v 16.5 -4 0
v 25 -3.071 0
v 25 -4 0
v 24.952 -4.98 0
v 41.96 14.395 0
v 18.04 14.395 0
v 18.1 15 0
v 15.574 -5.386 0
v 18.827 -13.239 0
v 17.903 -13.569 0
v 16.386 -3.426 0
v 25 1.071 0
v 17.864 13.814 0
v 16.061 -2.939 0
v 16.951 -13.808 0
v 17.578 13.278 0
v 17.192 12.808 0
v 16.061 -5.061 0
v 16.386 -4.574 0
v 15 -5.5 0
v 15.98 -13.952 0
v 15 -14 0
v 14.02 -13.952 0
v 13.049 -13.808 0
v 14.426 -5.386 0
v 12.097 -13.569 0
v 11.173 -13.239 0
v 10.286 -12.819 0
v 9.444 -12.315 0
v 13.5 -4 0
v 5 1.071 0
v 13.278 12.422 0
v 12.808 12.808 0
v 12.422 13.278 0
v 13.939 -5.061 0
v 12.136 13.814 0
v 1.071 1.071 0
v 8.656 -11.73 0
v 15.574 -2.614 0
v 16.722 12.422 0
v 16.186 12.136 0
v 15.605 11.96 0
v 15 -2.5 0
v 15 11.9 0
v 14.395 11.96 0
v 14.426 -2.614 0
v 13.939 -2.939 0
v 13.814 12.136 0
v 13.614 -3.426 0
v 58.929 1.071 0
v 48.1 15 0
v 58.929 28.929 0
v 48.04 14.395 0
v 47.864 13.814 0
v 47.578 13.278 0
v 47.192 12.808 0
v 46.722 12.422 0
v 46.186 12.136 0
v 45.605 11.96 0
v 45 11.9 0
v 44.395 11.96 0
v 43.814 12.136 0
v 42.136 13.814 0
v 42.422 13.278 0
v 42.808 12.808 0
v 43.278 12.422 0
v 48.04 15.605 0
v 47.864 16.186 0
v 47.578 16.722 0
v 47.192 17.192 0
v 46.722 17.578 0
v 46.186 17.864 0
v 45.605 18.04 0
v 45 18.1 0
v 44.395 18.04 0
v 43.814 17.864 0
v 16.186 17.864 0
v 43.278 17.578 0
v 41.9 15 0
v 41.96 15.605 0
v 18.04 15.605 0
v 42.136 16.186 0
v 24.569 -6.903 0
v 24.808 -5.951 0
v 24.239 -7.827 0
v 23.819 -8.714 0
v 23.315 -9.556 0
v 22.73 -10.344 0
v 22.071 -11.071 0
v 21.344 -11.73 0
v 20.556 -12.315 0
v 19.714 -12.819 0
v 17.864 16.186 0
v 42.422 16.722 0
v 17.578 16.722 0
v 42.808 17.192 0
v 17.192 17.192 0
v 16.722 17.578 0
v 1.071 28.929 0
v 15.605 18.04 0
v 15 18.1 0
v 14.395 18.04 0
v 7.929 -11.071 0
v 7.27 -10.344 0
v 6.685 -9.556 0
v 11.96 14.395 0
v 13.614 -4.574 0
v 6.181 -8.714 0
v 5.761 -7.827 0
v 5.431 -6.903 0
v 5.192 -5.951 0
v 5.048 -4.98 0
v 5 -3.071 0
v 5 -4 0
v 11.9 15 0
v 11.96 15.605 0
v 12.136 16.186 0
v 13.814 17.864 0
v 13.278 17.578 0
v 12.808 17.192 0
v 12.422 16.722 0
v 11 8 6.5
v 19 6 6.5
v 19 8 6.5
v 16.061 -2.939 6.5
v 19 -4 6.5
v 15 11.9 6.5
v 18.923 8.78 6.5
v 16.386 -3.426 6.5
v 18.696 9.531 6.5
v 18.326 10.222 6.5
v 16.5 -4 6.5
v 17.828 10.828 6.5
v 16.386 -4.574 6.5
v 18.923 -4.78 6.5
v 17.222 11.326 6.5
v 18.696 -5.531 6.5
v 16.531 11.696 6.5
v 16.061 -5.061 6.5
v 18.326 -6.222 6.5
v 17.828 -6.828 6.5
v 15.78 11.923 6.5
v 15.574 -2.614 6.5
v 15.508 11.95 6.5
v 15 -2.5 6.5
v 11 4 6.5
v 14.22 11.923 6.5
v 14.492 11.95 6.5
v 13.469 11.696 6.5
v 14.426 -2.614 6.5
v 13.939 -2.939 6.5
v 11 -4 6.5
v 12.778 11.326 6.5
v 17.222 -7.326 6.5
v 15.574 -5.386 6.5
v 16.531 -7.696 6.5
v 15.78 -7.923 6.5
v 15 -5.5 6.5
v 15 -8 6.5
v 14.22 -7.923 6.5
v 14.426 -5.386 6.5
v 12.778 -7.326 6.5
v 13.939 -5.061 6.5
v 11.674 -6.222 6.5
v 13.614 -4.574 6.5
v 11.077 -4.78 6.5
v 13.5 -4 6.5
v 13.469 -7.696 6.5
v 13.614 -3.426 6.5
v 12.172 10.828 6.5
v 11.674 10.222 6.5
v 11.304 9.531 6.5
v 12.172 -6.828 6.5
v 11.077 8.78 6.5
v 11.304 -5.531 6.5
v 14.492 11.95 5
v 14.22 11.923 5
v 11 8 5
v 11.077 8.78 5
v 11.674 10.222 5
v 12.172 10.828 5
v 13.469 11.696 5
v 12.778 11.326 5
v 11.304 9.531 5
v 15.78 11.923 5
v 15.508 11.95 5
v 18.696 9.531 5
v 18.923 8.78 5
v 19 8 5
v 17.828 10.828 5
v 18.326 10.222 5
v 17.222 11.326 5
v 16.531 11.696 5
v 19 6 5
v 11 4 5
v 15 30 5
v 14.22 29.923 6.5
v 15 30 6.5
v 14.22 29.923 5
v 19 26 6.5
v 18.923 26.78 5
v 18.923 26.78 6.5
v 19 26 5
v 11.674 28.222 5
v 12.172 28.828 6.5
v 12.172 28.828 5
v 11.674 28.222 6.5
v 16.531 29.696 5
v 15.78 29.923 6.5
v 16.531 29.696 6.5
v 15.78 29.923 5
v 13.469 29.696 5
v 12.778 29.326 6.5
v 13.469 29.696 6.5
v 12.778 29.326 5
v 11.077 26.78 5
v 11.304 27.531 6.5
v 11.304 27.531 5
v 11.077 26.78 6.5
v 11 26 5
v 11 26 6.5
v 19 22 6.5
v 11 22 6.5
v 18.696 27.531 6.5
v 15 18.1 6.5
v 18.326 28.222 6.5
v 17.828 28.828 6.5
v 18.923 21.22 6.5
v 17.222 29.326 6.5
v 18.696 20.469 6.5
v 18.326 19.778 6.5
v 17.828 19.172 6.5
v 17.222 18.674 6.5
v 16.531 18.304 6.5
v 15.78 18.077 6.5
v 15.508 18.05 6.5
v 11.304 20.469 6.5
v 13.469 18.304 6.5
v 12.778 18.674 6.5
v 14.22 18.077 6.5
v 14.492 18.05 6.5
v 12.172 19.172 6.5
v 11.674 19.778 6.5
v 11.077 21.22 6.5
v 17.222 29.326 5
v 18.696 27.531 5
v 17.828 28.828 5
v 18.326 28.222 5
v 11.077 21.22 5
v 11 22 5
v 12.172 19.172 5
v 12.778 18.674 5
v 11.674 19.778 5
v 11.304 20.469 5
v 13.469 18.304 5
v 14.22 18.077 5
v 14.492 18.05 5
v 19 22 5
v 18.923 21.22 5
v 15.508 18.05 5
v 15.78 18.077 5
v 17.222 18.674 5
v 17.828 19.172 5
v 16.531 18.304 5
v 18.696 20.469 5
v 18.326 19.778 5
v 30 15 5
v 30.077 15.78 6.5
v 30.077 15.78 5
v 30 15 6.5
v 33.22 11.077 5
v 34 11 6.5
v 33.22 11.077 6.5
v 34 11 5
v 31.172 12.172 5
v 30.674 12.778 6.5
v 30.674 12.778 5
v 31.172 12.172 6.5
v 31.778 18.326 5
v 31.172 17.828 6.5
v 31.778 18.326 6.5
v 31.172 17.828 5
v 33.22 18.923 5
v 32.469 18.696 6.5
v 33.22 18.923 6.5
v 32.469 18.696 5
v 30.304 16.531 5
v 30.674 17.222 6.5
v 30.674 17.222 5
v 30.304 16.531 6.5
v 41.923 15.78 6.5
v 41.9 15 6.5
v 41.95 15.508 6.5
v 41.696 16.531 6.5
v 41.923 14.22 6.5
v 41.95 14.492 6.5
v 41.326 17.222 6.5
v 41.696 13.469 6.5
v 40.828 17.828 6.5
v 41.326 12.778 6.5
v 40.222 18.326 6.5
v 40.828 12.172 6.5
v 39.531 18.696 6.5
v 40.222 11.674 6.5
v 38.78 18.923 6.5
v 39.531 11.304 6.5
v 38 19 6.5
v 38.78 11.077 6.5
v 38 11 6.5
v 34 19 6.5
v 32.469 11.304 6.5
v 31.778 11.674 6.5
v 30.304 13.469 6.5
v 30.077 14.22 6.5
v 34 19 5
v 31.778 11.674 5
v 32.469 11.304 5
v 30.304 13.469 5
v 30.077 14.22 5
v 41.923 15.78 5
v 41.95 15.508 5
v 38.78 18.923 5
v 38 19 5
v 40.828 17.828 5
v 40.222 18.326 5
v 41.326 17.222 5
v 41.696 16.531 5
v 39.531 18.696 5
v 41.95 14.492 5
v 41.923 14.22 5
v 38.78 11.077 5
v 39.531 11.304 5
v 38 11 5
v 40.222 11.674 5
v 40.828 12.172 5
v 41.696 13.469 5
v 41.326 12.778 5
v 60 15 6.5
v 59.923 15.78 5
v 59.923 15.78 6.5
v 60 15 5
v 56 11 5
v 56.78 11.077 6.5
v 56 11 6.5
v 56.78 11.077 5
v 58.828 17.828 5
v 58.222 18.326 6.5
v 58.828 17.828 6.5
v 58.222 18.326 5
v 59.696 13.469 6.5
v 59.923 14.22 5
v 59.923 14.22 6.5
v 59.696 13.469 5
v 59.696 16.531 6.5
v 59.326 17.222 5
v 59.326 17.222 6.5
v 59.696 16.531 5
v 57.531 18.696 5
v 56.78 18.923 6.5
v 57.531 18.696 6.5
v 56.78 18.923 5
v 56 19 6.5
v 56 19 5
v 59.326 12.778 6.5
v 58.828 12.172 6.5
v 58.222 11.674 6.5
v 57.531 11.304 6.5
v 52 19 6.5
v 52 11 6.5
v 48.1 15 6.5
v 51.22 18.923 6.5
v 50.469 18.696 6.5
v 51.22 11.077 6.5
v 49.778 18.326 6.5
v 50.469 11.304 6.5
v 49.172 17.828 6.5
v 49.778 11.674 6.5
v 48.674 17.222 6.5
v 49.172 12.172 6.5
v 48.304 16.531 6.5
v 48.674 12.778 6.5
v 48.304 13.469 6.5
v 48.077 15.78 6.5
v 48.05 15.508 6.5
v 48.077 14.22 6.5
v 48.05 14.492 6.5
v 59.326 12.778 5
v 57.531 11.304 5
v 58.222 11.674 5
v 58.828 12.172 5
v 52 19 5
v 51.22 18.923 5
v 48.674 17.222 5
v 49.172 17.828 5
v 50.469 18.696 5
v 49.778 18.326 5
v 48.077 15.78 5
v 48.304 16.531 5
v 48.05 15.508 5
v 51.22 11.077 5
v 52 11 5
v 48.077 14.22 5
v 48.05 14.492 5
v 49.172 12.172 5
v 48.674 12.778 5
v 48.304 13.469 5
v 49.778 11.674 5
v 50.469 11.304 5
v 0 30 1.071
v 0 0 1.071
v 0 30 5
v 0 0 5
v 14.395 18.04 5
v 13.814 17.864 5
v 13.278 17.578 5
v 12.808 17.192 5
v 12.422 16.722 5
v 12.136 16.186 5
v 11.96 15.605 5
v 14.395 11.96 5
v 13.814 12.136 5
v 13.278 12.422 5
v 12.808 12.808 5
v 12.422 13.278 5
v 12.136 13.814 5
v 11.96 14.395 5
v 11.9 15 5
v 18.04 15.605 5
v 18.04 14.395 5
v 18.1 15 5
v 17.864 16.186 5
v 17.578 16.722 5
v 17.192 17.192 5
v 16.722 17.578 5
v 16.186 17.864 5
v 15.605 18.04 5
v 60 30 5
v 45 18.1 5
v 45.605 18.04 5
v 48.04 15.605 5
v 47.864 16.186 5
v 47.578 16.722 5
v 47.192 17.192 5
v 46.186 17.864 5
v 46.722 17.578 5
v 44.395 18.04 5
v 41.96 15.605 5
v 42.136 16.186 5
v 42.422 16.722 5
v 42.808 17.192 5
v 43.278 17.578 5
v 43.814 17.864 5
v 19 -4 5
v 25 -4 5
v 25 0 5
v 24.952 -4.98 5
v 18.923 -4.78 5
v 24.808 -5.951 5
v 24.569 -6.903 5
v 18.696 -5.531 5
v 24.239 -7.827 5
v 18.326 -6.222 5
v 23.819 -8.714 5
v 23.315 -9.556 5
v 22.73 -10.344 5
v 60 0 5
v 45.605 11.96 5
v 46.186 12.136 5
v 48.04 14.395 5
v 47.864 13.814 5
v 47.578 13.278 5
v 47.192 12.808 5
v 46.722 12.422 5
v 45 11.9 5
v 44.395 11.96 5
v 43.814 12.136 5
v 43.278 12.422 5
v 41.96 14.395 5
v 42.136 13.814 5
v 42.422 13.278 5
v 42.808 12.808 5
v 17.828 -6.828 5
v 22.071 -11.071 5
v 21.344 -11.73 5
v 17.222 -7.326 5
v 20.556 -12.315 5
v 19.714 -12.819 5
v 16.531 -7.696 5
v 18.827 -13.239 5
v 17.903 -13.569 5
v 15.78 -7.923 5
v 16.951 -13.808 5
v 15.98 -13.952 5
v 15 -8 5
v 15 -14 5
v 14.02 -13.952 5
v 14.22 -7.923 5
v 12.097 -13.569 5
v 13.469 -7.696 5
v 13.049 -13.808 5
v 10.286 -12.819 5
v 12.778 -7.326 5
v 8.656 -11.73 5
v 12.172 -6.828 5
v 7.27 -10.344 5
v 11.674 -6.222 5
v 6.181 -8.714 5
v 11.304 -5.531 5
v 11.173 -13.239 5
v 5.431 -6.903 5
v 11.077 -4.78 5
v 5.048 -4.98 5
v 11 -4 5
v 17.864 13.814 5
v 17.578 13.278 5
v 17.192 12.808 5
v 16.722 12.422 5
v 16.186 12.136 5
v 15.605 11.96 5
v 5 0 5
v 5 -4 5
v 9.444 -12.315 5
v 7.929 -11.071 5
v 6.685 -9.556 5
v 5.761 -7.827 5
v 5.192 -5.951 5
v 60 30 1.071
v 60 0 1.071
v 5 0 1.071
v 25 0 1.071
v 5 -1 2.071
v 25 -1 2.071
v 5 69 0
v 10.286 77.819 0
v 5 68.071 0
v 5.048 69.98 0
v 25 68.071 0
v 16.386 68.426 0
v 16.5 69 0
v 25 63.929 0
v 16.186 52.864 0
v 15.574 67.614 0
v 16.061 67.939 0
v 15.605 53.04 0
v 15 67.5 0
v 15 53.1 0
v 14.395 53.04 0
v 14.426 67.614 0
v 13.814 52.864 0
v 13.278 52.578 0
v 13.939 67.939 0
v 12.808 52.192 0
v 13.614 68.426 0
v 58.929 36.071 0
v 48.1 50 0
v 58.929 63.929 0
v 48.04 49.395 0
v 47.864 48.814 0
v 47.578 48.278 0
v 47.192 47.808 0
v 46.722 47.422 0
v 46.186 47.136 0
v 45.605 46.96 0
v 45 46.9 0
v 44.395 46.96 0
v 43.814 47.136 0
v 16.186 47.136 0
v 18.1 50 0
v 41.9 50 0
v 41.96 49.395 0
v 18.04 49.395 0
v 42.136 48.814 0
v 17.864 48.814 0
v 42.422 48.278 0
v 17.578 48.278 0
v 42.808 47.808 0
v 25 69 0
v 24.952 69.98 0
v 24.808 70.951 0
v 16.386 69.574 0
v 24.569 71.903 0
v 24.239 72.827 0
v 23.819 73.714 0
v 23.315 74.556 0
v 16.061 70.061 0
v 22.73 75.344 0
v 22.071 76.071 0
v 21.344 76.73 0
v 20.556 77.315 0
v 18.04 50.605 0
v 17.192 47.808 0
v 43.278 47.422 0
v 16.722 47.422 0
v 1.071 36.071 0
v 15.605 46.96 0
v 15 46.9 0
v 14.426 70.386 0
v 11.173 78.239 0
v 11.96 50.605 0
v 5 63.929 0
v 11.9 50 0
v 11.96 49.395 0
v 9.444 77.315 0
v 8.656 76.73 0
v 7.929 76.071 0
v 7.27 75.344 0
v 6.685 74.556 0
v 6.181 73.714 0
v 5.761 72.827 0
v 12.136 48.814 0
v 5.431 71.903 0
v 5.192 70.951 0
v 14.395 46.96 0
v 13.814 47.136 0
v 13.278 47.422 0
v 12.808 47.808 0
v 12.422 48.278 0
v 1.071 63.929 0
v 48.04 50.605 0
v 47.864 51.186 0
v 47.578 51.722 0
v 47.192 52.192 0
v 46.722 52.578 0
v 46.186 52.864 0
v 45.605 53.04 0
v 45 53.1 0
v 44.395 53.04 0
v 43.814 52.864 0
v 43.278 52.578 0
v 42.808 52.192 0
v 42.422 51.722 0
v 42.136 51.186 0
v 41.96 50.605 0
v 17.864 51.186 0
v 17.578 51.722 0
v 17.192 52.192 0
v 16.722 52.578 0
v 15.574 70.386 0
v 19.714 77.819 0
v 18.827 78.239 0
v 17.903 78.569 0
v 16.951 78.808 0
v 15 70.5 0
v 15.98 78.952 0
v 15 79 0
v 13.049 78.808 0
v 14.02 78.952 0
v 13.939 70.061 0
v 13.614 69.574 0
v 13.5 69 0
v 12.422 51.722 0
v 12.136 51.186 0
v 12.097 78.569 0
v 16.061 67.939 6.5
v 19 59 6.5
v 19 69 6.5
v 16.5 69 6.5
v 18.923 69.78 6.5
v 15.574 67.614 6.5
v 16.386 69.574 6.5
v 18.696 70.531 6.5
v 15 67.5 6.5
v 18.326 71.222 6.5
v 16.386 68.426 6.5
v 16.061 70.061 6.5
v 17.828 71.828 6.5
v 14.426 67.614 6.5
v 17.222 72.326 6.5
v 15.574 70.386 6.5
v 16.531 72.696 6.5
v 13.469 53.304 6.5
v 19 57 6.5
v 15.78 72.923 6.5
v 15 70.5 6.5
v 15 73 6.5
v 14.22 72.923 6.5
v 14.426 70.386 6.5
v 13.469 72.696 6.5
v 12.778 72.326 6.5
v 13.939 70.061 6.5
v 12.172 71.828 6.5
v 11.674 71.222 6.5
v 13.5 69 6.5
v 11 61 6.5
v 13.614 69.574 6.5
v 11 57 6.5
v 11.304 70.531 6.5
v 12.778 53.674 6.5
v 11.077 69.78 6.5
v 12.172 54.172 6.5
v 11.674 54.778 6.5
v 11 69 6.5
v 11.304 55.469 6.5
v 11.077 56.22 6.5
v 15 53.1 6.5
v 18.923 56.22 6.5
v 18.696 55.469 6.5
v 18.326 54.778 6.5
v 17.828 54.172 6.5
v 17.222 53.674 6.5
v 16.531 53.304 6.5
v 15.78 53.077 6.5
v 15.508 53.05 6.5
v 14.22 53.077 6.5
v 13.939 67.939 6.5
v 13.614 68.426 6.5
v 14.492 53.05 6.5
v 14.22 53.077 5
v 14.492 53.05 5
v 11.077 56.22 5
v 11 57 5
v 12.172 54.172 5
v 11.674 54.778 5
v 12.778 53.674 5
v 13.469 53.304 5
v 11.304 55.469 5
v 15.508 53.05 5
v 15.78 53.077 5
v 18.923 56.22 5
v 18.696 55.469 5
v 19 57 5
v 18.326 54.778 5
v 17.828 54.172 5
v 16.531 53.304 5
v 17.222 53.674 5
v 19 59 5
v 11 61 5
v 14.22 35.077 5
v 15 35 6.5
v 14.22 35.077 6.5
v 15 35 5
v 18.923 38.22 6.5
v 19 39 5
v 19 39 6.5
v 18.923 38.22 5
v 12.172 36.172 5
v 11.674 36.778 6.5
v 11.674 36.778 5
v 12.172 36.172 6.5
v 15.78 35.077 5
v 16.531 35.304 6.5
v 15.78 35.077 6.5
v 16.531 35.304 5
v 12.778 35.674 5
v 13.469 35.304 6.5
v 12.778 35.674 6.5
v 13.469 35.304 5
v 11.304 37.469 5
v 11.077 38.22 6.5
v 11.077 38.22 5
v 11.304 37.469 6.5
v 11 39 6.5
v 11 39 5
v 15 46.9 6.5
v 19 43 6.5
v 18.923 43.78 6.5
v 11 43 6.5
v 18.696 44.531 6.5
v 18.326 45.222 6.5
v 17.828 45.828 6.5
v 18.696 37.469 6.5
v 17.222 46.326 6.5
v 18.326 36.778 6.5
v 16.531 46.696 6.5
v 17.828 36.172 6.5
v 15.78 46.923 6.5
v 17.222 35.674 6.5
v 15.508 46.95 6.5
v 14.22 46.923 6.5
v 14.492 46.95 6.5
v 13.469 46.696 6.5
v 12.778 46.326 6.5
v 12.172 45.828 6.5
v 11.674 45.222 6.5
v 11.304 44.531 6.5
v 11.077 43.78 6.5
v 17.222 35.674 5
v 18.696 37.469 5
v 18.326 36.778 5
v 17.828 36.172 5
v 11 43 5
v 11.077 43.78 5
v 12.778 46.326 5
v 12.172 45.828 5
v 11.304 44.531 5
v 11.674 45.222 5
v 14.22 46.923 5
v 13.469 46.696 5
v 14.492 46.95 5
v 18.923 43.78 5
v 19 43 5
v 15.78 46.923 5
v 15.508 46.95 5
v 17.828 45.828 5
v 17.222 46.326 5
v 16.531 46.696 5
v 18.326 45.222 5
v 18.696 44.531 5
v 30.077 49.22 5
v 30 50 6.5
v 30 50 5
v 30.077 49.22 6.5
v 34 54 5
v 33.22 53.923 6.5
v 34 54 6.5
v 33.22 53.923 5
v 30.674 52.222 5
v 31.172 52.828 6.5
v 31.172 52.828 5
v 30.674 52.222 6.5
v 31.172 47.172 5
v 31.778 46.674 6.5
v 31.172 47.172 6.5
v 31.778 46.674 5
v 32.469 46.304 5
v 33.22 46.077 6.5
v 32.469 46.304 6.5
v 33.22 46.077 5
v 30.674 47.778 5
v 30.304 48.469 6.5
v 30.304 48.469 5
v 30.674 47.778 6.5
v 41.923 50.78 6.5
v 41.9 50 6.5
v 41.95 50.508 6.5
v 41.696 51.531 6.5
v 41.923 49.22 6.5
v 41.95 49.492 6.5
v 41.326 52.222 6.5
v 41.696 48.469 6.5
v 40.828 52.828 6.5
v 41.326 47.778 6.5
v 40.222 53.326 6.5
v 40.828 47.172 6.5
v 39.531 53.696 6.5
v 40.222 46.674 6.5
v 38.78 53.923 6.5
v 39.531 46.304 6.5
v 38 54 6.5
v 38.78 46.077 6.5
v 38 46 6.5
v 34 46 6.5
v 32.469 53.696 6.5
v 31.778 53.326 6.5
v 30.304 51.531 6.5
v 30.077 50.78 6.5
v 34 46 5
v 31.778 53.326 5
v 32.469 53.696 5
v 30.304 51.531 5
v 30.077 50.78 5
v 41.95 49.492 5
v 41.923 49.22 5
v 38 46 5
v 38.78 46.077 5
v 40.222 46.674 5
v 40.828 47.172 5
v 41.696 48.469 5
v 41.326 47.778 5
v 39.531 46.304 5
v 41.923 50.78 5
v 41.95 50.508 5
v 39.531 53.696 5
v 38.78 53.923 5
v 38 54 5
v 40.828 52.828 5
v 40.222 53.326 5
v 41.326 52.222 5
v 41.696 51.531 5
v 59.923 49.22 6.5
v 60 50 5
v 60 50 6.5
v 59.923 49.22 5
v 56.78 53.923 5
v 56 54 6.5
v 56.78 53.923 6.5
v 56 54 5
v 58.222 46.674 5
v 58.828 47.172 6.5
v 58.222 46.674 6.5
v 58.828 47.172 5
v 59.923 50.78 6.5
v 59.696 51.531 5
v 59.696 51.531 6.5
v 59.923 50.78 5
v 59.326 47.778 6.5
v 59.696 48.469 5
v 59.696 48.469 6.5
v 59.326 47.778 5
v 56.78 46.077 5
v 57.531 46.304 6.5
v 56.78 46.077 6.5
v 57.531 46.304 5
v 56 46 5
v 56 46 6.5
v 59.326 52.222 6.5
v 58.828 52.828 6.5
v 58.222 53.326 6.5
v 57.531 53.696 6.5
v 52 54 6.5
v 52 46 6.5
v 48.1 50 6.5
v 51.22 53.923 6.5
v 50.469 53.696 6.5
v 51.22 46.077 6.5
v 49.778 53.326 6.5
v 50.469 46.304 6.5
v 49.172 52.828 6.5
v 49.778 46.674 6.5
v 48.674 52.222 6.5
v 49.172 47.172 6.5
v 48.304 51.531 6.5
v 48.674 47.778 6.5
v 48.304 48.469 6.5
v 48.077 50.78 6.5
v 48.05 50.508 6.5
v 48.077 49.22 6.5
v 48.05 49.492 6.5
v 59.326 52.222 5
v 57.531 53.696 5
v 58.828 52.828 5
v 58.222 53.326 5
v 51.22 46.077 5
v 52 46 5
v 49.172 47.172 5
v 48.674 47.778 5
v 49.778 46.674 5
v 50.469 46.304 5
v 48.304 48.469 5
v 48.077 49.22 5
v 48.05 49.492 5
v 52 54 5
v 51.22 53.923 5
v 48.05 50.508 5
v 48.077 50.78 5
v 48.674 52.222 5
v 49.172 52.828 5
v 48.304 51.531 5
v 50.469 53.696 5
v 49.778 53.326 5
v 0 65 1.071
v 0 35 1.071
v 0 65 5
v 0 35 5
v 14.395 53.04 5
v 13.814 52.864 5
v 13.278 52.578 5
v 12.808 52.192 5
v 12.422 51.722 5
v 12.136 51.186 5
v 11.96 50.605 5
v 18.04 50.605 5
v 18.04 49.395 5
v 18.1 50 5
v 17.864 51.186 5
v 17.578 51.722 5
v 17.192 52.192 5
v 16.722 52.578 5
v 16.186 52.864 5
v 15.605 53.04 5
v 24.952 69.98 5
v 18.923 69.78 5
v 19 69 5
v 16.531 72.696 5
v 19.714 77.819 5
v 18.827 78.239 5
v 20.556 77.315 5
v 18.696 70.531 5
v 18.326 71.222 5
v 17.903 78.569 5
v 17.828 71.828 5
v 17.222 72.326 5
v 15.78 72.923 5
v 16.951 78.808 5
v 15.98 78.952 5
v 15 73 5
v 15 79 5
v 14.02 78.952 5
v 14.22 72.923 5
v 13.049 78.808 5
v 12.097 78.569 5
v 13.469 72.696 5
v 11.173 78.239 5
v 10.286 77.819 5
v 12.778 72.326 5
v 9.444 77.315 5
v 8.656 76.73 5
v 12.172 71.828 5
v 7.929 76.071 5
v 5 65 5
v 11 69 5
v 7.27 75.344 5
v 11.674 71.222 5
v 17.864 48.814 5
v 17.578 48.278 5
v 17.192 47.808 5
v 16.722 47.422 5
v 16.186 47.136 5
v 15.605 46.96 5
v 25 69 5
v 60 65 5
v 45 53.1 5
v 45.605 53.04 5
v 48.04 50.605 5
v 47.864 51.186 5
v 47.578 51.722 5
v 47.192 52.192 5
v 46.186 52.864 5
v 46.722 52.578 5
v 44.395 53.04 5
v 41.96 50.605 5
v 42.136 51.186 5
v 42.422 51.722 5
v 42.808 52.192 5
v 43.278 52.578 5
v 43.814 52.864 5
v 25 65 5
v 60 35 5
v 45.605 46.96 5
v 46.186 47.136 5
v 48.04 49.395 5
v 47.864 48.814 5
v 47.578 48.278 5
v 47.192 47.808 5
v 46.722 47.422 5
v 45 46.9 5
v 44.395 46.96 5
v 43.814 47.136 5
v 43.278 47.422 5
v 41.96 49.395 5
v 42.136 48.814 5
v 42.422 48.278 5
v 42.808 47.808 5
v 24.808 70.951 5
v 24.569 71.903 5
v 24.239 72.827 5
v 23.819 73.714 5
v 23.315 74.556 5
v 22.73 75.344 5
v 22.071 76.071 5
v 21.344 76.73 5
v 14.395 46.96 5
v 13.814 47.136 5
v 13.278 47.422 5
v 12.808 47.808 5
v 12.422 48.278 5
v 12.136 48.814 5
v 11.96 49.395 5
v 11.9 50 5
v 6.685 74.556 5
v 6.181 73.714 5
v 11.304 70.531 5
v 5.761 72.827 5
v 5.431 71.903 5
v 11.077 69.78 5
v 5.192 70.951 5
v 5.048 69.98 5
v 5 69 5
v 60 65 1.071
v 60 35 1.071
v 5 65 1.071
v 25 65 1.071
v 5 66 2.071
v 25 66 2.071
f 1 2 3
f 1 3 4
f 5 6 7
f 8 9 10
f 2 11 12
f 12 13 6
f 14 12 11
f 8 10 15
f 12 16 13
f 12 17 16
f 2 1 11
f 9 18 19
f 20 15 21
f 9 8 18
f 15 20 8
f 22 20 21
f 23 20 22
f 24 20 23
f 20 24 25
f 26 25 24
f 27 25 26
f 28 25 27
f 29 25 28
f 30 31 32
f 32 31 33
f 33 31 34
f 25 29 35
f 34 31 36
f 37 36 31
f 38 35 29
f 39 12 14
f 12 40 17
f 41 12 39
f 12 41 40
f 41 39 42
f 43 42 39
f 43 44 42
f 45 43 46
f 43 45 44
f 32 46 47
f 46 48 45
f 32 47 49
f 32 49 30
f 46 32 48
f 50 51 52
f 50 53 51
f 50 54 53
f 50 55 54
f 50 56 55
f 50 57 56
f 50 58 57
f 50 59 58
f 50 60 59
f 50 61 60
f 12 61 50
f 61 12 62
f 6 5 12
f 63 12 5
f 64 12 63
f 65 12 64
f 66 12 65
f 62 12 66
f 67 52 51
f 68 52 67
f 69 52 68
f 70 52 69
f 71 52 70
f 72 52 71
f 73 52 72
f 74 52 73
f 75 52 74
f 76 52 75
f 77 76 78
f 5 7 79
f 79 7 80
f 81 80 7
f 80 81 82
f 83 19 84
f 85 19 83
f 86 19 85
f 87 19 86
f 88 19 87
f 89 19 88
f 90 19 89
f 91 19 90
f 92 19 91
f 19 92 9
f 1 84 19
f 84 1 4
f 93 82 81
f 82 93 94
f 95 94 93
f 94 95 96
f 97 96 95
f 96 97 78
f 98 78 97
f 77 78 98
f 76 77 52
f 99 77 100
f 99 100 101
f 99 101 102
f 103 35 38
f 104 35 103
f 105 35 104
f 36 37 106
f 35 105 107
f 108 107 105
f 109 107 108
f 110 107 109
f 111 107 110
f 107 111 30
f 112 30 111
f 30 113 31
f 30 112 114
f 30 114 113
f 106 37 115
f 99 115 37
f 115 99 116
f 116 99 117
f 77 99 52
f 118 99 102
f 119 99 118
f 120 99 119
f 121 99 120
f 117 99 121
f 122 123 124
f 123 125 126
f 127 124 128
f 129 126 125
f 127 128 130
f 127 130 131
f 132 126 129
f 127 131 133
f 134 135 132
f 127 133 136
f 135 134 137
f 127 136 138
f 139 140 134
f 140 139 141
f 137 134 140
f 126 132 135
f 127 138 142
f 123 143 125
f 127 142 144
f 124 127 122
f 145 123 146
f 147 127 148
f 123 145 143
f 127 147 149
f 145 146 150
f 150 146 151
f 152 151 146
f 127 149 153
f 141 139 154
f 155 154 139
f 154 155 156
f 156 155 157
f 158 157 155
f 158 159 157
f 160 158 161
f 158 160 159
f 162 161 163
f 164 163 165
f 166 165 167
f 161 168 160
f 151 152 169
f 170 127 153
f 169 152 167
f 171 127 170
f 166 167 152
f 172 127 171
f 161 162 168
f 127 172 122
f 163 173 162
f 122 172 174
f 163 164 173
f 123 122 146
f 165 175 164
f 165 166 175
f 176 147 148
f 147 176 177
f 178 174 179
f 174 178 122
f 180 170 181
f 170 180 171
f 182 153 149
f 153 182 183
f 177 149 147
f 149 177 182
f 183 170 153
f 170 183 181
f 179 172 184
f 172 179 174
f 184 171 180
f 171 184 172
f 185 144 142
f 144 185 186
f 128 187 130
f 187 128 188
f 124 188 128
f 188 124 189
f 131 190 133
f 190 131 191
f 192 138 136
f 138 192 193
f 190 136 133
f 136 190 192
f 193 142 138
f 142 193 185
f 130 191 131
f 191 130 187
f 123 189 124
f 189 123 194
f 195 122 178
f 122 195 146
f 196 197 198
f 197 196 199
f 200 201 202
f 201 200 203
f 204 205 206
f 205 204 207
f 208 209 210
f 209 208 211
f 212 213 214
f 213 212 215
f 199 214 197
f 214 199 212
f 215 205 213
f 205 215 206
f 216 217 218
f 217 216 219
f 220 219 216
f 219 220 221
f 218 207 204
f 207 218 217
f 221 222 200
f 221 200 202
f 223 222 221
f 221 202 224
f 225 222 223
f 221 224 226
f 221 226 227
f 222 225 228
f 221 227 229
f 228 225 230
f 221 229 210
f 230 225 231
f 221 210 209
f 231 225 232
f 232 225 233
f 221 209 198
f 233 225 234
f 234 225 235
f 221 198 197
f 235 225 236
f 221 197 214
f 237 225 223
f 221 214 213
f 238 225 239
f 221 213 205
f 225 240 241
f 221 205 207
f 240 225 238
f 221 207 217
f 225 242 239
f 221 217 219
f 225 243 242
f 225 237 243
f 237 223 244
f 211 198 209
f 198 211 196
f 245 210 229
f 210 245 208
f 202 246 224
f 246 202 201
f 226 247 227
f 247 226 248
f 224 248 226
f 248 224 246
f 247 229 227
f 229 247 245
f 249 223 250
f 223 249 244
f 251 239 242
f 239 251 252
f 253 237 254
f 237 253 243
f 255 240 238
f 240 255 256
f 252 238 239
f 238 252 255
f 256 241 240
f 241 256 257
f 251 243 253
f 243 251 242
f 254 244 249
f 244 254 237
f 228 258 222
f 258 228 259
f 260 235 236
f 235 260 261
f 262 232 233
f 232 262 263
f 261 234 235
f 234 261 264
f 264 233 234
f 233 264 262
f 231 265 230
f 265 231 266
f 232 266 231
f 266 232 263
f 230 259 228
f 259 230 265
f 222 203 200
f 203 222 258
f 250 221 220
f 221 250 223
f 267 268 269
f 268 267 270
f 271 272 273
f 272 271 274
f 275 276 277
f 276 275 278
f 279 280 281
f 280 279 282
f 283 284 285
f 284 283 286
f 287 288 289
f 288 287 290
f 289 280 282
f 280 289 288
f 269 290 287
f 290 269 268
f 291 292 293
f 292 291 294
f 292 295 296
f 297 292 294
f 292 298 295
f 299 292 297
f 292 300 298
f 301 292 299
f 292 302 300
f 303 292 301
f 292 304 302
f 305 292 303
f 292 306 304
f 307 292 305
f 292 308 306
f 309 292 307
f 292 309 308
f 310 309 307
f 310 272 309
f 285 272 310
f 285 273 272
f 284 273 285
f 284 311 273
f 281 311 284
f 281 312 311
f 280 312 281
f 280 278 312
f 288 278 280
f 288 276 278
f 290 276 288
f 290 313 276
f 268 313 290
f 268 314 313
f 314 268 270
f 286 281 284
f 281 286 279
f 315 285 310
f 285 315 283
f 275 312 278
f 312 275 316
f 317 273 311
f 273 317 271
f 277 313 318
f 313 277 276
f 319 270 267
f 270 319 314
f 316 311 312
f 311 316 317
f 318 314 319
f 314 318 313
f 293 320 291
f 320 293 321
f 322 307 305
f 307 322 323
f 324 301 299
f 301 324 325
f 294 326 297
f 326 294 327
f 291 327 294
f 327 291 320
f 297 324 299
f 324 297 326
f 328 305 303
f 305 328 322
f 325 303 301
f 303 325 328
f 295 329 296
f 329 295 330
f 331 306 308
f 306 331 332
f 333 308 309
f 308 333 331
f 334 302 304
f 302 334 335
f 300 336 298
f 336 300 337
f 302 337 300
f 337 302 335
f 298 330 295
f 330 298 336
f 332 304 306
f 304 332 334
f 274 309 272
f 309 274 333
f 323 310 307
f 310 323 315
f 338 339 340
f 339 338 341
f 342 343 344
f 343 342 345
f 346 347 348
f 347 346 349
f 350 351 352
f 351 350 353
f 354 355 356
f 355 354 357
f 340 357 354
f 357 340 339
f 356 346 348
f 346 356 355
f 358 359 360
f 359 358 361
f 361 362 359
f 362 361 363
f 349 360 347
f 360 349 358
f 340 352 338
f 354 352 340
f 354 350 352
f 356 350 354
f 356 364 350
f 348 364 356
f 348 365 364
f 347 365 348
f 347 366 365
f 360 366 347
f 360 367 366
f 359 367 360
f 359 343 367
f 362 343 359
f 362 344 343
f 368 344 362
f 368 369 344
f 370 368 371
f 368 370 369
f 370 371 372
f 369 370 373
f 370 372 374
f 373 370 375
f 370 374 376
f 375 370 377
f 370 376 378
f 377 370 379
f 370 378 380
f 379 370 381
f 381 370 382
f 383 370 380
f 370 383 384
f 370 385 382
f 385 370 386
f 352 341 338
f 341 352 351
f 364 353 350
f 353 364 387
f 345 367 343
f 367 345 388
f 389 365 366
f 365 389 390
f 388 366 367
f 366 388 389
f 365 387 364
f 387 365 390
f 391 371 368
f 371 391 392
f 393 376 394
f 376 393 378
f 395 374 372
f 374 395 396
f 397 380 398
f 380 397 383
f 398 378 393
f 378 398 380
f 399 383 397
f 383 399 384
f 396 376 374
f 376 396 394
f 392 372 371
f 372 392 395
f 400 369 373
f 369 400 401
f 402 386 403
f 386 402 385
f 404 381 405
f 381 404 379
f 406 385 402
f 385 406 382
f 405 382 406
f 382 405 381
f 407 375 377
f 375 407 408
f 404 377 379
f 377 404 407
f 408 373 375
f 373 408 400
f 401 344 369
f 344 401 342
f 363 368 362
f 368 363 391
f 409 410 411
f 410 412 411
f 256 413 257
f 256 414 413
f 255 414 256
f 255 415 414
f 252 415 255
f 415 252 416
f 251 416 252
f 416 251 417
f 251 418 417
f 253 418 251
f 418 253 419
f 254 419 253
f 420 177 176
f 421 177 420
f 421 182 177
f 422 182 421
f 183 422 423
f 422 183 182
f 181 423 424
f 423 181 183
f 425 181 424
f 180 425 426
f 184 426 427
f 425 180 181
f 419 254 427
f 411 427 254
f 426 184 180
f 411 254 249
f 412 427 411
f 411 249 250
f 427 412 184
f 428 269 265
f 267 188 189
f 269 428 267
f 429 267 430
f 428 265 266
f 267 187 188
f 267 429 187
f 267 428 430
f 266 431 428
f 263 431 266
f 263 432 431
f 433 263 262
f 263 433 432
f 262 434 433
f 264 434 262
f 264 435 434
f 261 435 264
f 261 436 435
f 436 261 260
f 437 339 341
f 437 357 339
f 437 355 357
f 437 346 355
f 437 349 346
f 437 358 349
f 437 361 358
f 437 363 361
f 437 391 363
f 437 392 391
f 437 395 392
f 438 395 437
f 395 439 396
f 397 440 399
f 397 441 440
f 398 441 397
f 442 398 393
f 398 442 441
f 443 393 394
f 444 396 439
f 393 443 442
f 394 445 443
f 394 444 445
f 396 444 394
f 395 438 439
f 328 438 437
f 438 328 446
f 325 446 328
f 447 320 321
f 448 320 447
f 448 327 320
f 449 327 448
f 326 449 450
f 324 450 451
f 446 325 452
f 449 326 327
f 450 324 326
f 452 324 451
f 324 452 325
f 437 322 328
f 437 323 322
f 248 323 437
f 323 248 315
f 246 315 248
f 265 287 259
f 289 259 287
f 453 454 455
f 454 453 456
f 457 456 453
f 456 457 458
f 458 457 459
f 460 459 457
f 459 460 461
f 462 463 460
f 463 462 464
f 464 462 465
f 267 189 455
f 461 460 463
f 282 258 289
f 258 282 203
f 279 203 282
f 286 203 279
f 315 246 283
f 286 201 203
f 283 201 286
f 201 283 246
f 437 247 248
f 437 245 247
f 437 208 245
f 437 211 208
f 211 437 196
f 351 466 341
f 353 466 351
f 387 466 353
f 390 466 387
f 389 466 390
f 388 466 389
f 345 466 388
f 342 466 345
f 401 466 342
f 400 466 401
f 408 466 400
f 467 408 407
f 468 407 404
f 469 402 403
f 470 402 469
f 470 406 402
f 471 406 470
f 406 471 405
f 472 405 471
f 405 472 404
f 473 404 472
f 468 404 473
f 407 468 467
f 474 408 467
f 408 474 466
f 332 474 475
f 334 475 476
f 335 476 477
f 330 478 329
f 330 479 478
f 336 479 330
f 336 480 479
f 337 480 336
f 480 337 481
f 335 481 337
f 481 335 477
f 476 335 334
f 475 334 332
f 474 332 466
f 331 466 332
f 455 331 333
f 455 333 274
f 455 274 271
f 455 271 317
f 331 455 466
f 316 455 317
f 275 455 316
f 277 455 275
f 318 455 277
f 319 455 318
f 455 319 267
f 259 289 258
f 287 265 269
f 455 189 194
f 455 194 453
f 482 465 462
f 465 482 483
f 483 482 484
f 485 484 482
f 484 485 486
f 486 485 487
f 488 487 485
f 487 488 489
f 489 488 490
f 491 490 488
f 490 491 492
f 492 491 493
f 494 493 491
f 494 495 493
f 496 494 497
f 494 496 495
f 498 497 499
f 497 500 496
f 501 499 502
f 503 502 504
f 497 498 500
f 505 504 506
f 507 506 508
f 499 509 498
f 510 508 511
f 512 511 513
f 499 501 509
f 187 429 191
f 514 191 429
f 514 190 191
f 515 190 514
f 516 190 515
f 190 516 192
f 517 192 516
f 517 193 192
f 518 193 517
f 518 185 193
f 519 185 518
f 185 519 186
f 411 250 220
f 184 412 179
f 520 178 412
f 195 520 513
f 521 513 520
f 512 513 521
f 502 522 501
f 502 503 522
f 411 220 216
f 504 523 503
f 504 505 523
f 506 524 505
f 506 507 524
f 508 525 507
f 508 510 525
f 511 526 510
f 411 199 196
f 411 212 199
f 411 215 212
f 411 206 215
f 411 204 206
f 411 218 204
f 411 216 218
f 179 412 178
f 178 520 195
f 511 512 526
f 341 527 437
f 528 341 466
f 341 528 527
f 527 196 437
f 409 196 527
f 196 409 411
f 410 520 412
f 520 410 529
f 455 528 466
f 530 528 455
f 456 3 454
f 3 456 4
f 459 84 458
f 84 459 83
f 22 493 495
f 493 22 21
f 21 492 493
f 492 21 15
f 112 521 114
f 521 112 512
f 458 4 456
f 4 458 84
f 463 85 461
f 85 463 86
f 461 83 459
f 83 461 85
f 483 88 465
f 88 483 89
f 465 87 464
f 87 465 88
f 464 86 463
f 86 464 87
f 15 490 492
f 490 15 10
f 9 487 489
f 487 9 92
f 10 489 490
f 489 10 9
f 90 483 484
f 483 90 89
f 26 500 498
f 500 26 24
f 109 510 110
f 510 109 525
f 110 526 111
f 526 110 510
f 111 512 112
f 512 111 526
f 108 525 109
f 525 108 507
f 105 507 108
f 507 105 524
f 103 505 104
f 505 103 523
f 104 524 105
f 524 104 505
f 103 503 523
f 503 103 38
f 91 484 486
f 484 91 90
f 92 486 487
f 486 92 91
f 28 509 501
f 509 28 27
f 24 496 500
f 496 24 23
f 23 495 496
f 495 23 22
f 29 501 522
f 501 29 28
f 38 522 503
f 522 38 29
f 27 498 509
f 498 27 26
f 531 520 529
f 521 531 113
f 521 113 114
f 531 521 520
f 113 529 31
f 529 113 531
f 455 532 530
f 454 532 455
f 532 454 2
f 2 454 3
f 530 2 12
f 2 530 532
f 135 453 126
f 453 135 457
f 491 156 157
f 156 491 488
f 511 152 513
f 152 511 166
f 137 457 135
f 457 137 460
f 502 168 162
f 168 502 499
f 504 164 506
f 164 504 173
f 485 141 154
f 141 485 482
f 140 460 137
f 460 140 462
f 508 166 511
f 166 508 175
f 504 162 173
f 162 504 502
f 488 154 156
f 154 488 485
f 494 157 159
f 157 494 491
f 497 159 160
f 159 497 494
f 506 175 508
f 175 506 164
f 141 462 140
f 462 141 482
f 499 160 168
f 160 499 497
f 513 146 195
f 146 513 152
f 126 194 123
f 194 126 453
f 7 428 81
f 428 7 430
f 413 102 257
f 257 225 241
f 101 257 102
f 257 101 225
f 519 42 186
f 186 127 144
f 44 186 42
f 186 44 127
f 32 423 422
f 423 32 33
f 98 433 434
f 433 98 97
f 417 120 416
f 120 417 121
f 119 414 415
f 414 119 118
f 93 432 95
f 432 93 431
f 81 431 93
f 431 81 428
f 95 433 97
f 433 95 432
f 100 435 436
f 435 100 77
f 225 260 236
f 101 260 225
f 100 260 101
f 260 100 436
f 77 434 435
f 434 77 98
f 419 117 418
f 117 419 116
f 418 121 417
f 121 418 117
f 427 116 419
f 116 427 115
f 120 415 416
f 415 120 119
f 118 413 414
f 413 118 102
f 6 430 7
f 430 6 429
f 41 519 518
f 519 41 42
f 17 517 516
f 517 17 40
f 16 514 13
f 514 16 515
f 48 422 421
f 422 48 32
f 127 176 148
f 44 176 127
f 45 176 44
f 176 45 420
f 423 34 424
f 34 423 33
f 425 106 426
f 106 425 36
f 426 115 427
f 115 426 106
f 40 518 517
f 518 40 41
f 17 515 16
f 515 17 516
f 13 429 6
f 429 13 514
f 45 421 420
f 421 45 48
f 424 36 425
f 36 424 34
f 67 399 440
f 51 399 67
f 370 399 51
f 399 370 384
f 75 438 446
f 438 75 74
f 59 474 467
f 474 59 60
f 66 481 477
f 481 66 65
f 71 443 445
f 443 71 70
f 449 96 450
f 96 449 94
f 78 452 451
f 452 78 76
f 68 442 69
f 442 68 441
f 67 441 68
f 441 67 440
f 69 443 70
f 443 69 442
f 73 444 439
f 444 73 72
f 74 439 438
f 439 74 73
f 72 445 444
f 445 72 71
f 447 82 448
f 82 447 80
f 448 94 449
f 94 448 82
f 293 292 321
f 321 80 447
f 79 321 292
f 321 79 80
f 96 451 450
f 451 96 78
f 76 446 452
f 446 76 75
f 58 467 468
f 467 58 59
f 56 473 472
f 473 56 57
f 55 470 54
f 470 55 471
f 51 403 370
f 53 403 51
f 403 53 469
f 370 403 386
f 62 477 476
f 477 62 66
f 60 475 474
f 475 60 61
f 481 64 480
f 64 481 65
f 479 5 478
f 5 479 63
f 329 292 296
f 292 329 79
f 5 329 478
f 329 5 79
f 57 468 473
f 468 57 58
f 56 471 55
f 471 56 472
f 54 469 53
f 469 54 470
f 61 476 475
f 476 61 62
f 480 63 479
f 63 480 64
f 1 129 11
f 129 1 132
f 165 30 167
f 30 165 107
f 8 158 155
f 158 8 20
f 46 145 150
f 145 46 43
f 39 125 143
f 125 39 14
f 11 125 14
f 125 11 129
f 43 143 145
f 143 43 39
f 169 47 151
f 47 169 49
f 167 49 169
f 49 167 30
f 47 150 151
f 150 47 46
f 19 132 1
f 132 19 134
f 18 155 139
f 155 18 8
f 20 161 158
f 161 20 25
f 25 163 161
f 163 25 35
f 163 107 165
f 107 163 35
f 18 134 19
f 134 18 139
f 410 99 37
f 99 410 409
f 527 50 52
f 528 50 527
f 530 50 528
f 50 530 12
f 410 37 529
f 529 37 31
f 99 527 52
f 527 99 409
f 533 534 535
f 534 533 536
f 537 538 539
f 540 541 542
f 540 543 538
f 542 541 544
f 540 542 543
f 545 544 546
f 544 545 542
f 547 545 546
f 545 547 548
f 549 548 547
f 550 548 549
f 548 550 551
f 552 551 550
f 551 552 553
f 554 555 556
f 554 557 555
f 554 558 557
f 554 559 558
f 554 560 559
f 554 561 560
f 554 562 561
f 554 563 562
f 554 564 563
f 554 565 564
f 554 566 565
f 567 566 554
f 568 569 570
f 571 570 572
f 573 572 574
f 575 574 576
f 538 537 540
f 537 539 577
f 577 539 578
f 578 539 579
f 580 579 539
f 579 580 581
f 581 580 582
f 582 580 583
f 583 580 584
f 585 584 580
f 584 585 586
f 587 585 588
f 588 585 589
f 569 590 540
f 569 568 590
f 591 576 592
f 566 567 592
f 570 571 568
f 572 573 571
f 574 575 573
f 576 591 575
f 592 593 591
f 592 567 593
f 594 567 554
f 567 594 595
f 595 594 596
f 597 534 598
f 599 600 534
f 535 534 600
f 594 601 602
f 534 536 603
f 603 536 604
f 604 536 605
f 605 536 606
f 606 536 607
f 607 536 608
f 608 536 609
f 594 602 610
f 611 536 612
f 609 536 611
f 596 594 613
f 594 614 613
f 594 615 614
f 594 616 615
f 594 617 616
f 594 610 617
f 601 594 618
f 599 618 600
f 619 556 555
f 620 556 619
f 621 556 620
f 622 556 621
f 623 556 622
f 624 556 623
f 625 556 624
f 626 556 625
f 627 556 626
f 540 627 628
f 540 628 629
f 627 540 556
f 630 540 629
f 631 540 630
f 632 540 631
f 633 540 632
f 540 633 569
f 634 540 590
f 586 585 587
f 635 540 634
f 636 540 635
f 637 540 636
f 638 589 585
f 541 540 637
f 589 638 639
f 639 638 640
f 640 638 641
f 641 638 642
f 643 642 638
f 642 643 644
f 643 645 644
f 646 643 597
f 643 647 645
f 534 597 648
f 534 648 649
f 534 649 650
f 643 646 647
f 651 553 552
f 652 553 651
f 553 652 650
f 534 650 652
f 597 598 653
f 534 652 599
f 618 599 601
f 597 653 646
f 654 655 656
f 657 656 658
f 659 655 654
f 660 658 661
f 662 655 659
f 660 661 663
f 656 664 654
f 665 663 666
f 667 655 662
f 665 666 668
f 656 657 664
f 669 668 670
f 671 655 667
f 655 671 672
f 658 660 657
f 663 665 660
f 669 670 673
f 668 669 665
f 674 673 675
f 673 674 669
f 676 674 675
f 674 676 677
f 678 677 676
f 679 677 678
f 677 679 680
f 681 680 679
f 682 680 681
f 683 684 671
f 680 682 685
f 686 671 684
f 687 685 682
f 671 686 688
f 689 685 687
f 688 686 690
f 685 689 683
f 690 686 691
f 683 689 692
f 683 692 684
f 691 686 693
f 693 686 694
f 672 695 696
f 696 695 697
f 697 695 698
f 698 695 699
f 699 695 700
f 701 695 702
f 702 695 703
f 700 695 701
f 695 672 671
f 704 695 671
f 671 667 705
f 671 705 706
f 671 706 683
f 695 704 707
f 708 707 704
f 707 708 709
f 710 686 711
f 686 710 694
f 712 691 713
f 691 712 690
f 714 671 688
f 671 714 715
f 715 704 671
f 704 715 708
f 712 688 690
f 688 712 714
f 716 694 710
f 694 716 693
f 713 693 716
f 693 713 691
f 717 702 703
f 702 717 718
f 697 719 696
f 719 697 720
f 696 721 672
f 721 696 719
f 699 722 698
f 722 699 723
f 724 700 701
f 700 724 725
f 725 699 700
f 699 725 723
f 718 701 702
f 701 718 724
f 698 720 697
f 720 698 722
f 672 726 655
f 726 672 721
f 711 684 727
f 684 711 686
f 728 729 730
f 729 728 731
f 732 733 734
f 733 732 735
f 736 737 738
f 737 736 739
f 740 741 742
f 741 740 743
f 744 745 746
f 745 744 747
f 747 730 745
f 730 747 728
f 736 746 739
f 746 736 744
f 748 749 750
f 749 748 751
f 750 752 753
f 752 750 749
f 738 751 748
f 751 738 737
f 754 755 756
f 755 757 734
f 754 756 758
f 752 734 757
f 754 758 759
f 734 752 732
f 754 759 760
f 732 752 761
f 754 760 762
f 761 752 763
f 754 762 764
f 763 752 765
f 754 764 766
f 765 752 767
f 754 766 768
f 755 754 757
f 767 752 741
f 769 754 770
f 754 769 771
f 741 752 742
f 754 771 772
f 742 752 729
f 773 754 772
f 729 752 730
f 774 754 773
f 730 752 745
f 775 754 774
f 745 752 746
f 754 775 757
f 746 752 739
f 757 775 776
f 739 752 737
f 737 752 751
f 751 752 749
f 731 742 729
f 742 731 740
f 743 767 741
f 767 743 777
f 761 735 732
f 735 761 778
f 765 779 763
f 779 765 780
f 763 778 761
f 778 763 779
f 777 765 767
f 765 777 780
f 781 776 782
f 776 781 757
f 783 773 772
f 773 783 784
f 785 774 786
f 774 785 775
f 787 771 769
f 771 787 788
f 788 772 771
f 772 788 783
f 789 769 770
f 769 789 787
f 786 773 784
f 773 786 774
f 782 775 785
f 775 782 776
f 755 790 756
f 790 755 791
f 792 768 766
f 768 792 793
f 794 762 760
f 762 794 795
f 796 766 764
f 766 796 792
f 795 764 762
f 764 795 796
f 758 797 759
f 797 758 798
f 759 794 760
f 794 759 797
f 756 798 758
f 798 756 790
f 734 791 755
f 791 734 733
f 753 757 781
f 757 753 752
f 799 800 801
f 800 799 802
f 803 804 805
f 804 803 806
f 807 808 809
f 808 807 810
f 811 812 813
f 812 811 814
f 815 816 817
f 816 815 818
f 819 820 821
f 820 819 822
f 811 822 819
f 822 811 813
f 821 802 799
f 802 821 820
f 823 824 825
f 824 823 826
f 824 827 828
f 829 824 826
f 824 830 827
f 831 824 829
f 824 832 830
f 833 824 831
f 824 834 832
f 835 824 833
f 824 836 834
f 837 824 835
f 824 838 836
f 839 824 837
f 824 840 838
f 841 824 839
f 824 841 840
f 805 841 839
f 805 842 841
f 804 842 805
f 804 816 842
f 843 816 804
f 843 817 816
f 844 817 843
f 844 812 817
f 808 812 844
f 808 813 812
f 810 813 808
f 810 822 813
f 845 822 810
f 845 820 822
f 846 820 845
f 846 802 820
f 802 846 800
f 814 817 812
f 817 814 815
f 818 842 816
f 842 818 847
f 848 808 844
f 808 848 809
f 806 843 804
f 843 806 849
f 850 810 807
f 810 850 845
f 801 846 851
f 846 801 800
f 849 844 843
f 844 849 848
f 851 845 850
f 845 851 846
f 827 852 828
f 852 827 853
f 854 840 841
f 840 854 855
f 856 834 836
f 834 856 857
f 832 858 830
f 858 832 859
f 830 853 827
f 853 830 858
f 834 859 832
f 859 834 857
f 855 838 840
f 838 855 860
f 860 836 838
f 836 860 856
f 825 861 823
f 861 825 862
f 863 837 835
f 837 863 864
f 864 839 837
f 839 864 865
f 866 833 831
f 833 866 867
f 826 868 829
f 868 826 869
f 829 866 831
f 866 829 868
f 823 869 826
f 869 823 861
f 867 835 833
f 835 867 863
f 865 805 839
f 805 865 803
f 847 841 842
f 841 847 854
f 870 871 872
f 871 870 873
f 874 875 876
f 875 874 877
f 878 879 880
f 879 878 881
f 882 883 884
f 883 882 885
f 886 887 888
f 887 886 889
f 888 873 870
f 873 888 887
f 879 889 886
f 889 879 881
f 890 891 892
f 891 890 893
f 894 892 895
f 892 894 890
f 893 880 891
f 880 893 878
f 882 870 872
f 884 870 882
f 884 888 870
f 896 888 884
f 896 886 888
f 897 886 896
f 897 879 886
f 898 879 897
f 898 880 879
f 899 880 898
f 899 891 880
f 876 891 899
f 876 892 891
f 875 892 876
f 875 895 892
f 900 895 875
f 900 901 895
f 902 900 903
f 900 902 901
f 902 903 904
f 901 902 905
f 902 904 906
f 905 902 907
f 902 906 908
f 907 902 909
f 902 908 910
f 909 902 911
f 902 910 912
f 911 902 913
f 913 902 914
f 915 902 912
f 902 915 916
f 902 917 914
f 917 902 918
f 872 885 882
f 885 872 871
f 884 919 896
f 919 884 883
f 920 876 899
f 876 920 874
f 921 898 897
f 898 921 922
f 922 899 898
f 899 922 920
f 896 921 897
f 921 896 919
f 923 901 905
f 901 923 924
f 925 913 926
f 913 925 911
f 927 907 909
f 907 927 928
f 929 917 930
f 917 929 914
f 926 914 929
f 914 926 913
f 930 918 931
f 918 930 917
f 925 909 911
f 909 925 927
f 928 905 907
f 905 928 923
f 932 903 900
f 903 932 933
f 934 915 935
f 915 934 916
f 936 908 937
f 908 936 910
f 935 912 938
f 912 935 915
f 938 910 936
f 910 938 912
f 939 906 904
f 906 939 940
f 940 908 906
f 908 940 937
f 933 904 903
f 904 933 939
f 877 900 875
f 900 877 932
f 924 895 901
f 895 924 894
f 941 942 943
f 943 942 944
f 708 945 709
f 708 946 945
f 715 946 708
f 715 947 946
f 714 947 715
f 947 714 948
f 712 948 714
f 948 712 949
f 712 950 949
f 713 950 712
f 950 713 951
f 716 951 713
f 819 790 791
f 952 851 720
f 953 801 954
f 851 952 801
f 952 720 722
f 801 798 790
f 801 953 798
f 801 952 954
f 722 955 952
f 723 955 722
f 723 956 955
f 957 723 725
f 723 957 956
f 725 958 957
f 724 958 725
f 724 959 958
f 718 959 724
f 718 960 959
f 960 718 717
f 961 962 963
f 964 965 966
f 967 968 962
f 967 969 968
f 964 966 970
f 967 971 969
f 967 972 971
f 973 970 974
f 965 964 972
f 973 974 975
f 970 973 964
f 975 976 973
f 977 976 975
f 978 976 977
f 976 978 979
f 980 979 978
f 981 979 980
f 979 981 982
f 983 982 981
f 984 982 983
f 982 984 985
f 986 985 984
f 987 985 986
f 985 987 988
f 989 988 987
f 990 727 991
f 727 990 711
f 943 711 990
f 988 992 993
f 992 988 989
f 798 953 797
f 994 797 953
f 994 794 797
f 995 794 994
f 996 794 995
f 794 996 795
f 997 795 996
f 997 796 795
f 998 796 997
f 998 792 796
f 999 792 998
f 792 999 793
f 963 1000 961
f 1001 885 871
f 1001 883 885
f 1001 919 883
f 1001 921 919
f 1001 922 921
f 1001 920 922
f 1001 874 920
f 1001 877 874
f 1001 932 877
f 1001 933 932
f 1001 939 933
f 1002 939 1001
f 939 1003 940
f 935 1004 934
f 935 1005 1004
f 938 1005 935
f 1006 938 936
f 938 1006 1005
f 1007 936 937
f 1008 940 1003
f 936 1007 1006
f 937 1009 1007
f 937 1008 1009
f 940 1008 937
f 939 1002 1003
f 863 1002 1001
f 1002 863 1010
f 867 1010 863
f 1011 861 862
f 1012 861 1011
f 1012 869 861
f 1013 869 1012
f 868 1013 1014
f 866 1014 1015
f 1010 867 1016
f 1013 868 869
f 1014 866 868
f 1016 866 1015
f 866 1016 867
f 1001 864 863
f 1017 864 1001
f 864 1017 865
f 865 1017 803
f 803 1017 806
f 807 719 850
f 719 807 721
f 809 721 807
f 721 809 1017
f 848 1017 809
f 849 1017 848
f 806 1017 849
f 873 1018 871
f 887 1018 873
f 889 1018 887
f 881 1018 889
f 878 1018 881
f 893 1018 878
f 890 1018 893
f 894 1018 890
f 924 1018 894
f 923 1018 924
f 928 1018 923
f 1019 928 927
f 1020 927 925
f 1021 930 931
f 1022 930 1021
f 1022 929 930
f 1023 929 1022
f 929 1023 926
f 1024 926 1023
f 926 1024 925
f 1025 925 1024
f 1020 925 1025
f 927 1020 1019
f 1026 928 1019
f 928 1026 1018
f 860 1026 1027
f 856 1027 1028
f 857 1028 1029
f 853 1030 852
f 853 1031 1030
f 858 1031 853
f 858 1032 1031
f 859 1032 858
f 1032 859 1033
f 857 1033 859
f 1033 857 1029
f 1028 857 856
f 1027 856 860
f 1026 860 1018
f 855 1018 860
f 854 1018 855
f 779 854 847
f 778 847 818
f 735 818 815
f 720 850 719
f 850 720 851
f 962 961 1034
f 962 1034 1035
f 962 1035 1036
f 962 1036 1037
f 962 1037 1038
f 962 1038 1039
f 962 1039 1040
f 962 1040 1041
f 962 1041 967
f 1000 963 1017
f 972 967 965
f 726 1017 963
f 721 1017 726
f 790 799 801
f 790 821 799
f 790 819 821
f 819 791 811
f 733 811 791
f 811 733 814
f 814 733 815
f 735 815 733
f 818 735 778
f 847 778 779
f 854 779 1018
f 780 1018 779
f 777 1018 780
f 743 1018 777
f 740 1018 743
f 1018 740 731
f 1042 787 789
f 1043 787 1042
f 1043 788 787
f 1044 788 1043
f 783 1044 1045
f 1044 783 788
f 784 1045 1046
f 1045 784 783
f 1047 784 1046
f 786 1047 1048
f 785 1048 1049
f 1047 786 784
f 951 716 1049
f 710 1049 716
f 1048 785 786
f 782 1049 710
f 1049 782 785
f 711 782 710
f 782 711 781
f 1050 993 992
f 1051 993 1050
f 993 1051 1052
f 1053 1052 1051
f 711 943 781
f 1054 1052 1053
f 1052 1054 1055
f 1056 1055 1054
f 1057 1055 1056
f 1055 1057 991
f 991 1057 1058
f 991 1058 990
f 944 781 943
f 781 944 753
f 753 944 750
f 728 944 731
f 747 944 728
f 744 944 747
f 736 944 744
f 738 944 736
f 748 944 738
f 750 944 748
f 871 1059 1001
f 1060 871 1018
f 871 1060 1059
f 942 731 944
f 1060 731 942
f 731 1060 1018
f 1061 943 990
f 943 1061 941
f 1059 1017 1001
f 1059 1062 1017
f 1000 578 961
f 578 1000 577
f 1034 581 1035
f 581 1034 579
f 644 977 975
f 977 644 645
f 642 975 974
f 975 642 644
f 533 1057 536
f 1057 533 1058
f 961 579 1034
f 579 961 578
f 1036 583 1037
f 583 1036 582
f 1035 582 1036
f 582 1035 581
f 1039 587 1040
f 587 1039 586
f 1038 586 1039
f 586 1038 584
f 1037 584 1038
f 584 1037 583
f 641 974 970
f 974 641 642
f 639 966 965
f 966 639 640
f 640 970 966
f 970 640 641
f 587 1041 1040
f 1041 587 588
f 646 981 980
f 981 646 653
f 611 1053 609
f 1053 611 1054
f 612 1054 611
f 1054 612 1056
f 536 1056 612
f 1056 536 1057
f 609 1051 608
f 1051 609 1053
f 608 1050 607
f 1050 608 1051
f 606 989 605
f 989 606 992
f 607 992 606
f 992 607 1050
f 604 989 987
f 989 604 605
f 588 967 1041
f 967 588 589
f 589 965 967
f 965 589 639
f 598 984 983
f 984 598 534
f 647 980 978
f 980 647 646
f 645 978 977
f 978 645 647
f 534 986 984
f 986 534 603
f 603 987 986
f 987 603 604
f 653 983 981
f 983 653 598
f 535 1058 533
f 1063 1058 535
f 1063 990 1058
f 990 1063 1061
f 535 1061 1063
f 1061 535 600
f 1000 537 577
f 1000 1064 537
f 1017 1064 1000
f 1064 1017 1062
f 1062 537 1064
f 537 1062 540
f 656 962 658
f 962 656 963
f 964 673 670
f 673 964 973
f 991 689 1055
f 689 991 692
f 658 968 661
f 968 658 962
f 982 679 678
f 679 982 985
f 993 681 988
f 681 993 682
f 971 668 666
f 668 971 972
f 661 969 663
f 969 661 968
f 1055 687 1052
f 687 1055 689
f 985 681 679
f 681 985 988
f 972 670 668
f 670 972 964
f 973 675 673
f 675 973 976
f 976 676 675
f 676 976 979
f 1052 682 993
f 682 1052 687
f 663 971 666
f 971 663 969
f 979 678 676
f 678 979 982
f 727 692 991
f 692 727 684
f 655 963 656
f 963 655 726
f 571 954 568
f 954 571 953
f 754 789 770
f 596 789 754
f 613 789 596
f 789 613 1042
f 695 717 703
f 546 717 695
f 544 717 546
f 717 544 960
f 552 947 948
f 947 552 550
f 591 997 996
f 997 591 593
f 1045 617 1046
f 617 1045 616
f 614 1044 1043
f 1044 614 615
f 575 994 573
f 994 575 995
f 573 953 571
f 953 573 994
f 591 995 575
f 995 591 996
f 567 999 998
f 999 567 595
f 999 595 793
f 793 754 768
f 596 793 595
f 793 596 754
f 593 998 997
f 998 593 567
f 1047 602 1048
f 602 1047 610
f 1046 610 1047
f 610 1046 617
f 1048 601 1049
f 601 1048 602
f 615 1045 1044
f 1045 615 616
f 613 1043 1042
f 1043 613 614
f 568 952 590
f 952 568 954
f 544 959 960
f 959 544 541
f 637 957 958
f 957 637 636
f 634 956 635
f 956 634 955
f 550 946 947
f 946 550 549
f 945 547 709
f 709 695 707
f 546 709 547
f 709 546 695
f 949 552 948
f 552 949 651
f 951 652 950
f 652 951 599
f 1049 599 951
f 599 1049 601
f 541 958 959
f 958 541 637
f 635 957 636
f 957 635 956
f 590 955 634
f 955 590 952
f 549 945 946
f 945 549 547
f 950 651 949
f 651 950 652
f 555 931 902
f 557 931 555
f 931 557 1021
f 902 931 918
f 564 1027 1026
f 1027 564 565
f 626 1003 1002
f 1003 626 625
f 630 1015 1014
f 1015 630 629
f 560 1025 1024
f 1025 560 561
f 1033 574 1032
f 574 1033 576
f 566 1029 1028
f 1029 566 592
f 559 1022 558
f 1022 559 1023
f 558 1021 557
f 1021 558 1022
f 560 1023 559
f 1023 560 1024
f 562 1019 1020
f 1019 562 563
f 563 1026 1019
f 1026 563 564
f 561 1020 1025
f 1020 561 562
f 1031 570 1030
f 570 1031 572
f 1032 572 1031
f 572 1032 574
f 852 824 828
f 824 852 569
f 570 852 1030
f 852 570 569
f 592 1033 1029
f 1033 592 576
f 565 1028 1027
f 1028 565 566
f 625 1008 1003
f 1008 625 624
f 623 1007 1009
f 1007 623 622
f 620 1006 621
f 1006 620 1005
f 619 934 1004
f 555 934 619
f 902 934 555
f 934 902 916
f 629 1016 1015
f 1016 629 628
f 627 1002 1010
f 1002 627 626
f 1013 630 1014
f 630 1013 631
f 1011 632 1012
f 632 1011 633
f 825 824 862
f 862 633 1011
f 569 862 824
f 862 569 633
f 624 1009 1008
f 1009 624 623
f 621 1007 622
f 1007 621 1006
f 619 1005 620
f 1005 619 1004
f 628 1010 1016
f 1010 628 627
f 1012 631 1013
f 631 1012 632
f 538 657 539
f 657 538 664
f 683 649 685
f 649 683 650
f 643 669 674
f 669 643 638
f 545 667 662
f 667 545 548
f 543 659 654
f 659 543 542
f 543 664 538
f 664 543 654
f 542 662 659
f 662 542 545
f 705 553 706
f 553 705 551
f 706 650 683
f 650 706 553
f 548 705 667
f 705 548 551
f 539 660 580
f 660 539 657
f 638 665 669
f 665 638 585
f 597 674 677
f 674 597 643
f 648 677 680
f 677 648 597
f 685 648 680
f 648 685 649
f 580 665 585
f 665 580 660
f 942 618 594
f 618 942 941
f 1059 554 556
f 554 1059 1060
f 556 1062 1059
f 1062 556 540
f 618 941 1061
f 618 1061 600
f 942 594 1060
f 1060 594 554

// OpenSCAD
// file: ../configuration.scad
/*
	Konfiguracni soubor 3D tiskarny RebeliX X2
	
	Sledujte nas na:		  
			www.RepRap4U.cz
			www.facebook.com/RebeliX.cz
			https://twitter.com/reprap4u
			https://plus.google.com/+Reprap4uCz-3Dtiskarna-RebeliX
*/

/*================ Slic3r nastaveni ==========================*/

// Vyska vrstvy pro tisknuti dilu [mm]
layer_height = 0.3;

// Sirka vytlacovaneho materialu [mm]
extrusion_width = 0.66; //Slic3r->Print Settings->Advanced->Default extrusion width

/*==================== M6 sroub ==============================*/

// Rezerva prumeru hlavy sroubu [mm]
space = 1;

// Prumer hlavy M6 sroubu (pricte se rezerva) [mm]
M6_head_diameter = 10.6+space;
//M6_head_diameter = 12+space;

// Vyska hlavy M6 sroubu (dulezite pro zapusteni hlavy sroubu do plastu) [mm]
M6_head_height = 3.6;
//M6_head_height = 4.5;

// Delka sroubu M6 [mm]
// M6x12
M6_lenght = 12;

/*=================== Nastaveni dilu =========================*/

// Posun Z zakladny
z_base_offset = 11;

// Tloustka rohovych spojek
// 5 mm => sroub M6x14 s podlozkou
// 3 mm => sroub M6x12 s podlozkou
coupler_thickness = 5;

// Prumer 8mm tyce
rod_8mm_d = 8.2;

// Posun drzacku mezi x-motor a x-end
x_holder_position = 6.5;

/*======================== Motory ============================*/

// Delka motoru (ovlivni dily a delky tyci pro osy Z a Y)
//SX17-1003LQFE (doporuceno hlavne na osu Z)
motor_length = 29.5;
//SX17-1003 (doporuceno hlavne na osu Z), SX17-0503LQEF
//motor_length = 34;
//SX17-1005
//motor_length = 40;
//SX17-0905 - zde je jiz problem s velkou vyskou motoru na ose Z - musi se upravit endstop-holder
//motor_length = 48;

/*================ Remeny a remenicky ========================*/

// GT2 
belt_tooth_distance = 2;
belt_tooth_ratio = 0.5;

// T2.5
//belt_tooth_distance = 2.5;
//belt_tooth_ratio = 0.68;
// main file
// RebeliX
//
// corner-coupler-bottom
// GNU GPL v3
// Martin Neruda <neruda@reprap4u.cz>
// http://www.reprap4u.cz
// Inspired by Rebel II

include <../configuration.scad>

// Prumer pristrojove gumove nozicky
rubber_feet_d = 20;

module drazka(){
	translate([-30/2+4,0,0]) cylinder(r=4,h=coupler_thickness+1.5,$fn=32,center=true);
	translate([-30/2+8,0,0]) cylinder(r=4,h=coupler_thickness+1.5,$fn=32,center=true);
	translate([-30/2+6,0,0]) cube([4,8,coupler_thickness+1.5],center=true);
	
	translate([30/2-4,0,0])cylinder(r=4,h=coupler_thickness+1.5,$fn=32,center=true);
	translate([30/2-8,0,0])cylinder(r=4,h=coupler_thickness+1.5,$fn=32,center=true);
	translate([30/2-6,0,0]) cube([4,8,coupler_thickness+1.5],center=true);
}

module corner_coupler_bottom(){
  difference(){
	union(){
		cube([60,30,coupler_thickness]);
		translate([15,30/2,(coupler_thickness+1.5)/2]) rotate([0,0,90]) drazka();
		translate([45,30/2,(coupler_thickness+1.5)/2]) drazka();
		translate([15,15-9-rubber_feet_d/2,0]) cylinder(r=rubber_feet_d/2,h=coupler_thickness,$fn=64);
		translate([15,15-9,coupler_thickness/2]) cube([rubber_feet_d,rubber_feet_d,coupler_thickness],center=true);
		translate([15,15-9-rubber_feet_d/2,0]) cylinder(r=4,h=coupler_thickness+1.5,$fn=32);
		translate([15-4,15-9-rubber_feet_d/2,0]) cube([8,rubber_feet_d/2,coupler_thickness+1.5]);
	}
		
	// Otvory pro srouby
	translate([15,30/2,0])cylinder(h=20,r=3.1,$fn=32,center=true);
	translate([45,30/2,0])cylinder(h=20,r=3.1,$fn=32,center=true);
	translate([15,15-9-rubber_feet_d/2,0]) cylinder(r=1.5,h=20,$fn=16,center=true);
		
	// Zalomene hrany
	translate([-1,-0.1,-5]) rotate([0,-45,0]) cube([5,40,5]);
	translate([61,-0.1,-5]) rotate([0,-45,0]) cube([5,40,5]);
	translate([15+rubber_feet_d/2,-1,-5]) rotate([45,0,0]) cube([70,5,5]);
	translate([15-rubber_feet_d/2,-1,-5]) rotate([45,0,180]) cube([70,5,5]);
	translate([-0.1,31,-5]) rotate([45,0,0]) cube([70,5,5]);
  }
}

corner_coupler_bottom();
translate([0,65,0]) mirror([0,1,0]) corner_coupler_bottom();
